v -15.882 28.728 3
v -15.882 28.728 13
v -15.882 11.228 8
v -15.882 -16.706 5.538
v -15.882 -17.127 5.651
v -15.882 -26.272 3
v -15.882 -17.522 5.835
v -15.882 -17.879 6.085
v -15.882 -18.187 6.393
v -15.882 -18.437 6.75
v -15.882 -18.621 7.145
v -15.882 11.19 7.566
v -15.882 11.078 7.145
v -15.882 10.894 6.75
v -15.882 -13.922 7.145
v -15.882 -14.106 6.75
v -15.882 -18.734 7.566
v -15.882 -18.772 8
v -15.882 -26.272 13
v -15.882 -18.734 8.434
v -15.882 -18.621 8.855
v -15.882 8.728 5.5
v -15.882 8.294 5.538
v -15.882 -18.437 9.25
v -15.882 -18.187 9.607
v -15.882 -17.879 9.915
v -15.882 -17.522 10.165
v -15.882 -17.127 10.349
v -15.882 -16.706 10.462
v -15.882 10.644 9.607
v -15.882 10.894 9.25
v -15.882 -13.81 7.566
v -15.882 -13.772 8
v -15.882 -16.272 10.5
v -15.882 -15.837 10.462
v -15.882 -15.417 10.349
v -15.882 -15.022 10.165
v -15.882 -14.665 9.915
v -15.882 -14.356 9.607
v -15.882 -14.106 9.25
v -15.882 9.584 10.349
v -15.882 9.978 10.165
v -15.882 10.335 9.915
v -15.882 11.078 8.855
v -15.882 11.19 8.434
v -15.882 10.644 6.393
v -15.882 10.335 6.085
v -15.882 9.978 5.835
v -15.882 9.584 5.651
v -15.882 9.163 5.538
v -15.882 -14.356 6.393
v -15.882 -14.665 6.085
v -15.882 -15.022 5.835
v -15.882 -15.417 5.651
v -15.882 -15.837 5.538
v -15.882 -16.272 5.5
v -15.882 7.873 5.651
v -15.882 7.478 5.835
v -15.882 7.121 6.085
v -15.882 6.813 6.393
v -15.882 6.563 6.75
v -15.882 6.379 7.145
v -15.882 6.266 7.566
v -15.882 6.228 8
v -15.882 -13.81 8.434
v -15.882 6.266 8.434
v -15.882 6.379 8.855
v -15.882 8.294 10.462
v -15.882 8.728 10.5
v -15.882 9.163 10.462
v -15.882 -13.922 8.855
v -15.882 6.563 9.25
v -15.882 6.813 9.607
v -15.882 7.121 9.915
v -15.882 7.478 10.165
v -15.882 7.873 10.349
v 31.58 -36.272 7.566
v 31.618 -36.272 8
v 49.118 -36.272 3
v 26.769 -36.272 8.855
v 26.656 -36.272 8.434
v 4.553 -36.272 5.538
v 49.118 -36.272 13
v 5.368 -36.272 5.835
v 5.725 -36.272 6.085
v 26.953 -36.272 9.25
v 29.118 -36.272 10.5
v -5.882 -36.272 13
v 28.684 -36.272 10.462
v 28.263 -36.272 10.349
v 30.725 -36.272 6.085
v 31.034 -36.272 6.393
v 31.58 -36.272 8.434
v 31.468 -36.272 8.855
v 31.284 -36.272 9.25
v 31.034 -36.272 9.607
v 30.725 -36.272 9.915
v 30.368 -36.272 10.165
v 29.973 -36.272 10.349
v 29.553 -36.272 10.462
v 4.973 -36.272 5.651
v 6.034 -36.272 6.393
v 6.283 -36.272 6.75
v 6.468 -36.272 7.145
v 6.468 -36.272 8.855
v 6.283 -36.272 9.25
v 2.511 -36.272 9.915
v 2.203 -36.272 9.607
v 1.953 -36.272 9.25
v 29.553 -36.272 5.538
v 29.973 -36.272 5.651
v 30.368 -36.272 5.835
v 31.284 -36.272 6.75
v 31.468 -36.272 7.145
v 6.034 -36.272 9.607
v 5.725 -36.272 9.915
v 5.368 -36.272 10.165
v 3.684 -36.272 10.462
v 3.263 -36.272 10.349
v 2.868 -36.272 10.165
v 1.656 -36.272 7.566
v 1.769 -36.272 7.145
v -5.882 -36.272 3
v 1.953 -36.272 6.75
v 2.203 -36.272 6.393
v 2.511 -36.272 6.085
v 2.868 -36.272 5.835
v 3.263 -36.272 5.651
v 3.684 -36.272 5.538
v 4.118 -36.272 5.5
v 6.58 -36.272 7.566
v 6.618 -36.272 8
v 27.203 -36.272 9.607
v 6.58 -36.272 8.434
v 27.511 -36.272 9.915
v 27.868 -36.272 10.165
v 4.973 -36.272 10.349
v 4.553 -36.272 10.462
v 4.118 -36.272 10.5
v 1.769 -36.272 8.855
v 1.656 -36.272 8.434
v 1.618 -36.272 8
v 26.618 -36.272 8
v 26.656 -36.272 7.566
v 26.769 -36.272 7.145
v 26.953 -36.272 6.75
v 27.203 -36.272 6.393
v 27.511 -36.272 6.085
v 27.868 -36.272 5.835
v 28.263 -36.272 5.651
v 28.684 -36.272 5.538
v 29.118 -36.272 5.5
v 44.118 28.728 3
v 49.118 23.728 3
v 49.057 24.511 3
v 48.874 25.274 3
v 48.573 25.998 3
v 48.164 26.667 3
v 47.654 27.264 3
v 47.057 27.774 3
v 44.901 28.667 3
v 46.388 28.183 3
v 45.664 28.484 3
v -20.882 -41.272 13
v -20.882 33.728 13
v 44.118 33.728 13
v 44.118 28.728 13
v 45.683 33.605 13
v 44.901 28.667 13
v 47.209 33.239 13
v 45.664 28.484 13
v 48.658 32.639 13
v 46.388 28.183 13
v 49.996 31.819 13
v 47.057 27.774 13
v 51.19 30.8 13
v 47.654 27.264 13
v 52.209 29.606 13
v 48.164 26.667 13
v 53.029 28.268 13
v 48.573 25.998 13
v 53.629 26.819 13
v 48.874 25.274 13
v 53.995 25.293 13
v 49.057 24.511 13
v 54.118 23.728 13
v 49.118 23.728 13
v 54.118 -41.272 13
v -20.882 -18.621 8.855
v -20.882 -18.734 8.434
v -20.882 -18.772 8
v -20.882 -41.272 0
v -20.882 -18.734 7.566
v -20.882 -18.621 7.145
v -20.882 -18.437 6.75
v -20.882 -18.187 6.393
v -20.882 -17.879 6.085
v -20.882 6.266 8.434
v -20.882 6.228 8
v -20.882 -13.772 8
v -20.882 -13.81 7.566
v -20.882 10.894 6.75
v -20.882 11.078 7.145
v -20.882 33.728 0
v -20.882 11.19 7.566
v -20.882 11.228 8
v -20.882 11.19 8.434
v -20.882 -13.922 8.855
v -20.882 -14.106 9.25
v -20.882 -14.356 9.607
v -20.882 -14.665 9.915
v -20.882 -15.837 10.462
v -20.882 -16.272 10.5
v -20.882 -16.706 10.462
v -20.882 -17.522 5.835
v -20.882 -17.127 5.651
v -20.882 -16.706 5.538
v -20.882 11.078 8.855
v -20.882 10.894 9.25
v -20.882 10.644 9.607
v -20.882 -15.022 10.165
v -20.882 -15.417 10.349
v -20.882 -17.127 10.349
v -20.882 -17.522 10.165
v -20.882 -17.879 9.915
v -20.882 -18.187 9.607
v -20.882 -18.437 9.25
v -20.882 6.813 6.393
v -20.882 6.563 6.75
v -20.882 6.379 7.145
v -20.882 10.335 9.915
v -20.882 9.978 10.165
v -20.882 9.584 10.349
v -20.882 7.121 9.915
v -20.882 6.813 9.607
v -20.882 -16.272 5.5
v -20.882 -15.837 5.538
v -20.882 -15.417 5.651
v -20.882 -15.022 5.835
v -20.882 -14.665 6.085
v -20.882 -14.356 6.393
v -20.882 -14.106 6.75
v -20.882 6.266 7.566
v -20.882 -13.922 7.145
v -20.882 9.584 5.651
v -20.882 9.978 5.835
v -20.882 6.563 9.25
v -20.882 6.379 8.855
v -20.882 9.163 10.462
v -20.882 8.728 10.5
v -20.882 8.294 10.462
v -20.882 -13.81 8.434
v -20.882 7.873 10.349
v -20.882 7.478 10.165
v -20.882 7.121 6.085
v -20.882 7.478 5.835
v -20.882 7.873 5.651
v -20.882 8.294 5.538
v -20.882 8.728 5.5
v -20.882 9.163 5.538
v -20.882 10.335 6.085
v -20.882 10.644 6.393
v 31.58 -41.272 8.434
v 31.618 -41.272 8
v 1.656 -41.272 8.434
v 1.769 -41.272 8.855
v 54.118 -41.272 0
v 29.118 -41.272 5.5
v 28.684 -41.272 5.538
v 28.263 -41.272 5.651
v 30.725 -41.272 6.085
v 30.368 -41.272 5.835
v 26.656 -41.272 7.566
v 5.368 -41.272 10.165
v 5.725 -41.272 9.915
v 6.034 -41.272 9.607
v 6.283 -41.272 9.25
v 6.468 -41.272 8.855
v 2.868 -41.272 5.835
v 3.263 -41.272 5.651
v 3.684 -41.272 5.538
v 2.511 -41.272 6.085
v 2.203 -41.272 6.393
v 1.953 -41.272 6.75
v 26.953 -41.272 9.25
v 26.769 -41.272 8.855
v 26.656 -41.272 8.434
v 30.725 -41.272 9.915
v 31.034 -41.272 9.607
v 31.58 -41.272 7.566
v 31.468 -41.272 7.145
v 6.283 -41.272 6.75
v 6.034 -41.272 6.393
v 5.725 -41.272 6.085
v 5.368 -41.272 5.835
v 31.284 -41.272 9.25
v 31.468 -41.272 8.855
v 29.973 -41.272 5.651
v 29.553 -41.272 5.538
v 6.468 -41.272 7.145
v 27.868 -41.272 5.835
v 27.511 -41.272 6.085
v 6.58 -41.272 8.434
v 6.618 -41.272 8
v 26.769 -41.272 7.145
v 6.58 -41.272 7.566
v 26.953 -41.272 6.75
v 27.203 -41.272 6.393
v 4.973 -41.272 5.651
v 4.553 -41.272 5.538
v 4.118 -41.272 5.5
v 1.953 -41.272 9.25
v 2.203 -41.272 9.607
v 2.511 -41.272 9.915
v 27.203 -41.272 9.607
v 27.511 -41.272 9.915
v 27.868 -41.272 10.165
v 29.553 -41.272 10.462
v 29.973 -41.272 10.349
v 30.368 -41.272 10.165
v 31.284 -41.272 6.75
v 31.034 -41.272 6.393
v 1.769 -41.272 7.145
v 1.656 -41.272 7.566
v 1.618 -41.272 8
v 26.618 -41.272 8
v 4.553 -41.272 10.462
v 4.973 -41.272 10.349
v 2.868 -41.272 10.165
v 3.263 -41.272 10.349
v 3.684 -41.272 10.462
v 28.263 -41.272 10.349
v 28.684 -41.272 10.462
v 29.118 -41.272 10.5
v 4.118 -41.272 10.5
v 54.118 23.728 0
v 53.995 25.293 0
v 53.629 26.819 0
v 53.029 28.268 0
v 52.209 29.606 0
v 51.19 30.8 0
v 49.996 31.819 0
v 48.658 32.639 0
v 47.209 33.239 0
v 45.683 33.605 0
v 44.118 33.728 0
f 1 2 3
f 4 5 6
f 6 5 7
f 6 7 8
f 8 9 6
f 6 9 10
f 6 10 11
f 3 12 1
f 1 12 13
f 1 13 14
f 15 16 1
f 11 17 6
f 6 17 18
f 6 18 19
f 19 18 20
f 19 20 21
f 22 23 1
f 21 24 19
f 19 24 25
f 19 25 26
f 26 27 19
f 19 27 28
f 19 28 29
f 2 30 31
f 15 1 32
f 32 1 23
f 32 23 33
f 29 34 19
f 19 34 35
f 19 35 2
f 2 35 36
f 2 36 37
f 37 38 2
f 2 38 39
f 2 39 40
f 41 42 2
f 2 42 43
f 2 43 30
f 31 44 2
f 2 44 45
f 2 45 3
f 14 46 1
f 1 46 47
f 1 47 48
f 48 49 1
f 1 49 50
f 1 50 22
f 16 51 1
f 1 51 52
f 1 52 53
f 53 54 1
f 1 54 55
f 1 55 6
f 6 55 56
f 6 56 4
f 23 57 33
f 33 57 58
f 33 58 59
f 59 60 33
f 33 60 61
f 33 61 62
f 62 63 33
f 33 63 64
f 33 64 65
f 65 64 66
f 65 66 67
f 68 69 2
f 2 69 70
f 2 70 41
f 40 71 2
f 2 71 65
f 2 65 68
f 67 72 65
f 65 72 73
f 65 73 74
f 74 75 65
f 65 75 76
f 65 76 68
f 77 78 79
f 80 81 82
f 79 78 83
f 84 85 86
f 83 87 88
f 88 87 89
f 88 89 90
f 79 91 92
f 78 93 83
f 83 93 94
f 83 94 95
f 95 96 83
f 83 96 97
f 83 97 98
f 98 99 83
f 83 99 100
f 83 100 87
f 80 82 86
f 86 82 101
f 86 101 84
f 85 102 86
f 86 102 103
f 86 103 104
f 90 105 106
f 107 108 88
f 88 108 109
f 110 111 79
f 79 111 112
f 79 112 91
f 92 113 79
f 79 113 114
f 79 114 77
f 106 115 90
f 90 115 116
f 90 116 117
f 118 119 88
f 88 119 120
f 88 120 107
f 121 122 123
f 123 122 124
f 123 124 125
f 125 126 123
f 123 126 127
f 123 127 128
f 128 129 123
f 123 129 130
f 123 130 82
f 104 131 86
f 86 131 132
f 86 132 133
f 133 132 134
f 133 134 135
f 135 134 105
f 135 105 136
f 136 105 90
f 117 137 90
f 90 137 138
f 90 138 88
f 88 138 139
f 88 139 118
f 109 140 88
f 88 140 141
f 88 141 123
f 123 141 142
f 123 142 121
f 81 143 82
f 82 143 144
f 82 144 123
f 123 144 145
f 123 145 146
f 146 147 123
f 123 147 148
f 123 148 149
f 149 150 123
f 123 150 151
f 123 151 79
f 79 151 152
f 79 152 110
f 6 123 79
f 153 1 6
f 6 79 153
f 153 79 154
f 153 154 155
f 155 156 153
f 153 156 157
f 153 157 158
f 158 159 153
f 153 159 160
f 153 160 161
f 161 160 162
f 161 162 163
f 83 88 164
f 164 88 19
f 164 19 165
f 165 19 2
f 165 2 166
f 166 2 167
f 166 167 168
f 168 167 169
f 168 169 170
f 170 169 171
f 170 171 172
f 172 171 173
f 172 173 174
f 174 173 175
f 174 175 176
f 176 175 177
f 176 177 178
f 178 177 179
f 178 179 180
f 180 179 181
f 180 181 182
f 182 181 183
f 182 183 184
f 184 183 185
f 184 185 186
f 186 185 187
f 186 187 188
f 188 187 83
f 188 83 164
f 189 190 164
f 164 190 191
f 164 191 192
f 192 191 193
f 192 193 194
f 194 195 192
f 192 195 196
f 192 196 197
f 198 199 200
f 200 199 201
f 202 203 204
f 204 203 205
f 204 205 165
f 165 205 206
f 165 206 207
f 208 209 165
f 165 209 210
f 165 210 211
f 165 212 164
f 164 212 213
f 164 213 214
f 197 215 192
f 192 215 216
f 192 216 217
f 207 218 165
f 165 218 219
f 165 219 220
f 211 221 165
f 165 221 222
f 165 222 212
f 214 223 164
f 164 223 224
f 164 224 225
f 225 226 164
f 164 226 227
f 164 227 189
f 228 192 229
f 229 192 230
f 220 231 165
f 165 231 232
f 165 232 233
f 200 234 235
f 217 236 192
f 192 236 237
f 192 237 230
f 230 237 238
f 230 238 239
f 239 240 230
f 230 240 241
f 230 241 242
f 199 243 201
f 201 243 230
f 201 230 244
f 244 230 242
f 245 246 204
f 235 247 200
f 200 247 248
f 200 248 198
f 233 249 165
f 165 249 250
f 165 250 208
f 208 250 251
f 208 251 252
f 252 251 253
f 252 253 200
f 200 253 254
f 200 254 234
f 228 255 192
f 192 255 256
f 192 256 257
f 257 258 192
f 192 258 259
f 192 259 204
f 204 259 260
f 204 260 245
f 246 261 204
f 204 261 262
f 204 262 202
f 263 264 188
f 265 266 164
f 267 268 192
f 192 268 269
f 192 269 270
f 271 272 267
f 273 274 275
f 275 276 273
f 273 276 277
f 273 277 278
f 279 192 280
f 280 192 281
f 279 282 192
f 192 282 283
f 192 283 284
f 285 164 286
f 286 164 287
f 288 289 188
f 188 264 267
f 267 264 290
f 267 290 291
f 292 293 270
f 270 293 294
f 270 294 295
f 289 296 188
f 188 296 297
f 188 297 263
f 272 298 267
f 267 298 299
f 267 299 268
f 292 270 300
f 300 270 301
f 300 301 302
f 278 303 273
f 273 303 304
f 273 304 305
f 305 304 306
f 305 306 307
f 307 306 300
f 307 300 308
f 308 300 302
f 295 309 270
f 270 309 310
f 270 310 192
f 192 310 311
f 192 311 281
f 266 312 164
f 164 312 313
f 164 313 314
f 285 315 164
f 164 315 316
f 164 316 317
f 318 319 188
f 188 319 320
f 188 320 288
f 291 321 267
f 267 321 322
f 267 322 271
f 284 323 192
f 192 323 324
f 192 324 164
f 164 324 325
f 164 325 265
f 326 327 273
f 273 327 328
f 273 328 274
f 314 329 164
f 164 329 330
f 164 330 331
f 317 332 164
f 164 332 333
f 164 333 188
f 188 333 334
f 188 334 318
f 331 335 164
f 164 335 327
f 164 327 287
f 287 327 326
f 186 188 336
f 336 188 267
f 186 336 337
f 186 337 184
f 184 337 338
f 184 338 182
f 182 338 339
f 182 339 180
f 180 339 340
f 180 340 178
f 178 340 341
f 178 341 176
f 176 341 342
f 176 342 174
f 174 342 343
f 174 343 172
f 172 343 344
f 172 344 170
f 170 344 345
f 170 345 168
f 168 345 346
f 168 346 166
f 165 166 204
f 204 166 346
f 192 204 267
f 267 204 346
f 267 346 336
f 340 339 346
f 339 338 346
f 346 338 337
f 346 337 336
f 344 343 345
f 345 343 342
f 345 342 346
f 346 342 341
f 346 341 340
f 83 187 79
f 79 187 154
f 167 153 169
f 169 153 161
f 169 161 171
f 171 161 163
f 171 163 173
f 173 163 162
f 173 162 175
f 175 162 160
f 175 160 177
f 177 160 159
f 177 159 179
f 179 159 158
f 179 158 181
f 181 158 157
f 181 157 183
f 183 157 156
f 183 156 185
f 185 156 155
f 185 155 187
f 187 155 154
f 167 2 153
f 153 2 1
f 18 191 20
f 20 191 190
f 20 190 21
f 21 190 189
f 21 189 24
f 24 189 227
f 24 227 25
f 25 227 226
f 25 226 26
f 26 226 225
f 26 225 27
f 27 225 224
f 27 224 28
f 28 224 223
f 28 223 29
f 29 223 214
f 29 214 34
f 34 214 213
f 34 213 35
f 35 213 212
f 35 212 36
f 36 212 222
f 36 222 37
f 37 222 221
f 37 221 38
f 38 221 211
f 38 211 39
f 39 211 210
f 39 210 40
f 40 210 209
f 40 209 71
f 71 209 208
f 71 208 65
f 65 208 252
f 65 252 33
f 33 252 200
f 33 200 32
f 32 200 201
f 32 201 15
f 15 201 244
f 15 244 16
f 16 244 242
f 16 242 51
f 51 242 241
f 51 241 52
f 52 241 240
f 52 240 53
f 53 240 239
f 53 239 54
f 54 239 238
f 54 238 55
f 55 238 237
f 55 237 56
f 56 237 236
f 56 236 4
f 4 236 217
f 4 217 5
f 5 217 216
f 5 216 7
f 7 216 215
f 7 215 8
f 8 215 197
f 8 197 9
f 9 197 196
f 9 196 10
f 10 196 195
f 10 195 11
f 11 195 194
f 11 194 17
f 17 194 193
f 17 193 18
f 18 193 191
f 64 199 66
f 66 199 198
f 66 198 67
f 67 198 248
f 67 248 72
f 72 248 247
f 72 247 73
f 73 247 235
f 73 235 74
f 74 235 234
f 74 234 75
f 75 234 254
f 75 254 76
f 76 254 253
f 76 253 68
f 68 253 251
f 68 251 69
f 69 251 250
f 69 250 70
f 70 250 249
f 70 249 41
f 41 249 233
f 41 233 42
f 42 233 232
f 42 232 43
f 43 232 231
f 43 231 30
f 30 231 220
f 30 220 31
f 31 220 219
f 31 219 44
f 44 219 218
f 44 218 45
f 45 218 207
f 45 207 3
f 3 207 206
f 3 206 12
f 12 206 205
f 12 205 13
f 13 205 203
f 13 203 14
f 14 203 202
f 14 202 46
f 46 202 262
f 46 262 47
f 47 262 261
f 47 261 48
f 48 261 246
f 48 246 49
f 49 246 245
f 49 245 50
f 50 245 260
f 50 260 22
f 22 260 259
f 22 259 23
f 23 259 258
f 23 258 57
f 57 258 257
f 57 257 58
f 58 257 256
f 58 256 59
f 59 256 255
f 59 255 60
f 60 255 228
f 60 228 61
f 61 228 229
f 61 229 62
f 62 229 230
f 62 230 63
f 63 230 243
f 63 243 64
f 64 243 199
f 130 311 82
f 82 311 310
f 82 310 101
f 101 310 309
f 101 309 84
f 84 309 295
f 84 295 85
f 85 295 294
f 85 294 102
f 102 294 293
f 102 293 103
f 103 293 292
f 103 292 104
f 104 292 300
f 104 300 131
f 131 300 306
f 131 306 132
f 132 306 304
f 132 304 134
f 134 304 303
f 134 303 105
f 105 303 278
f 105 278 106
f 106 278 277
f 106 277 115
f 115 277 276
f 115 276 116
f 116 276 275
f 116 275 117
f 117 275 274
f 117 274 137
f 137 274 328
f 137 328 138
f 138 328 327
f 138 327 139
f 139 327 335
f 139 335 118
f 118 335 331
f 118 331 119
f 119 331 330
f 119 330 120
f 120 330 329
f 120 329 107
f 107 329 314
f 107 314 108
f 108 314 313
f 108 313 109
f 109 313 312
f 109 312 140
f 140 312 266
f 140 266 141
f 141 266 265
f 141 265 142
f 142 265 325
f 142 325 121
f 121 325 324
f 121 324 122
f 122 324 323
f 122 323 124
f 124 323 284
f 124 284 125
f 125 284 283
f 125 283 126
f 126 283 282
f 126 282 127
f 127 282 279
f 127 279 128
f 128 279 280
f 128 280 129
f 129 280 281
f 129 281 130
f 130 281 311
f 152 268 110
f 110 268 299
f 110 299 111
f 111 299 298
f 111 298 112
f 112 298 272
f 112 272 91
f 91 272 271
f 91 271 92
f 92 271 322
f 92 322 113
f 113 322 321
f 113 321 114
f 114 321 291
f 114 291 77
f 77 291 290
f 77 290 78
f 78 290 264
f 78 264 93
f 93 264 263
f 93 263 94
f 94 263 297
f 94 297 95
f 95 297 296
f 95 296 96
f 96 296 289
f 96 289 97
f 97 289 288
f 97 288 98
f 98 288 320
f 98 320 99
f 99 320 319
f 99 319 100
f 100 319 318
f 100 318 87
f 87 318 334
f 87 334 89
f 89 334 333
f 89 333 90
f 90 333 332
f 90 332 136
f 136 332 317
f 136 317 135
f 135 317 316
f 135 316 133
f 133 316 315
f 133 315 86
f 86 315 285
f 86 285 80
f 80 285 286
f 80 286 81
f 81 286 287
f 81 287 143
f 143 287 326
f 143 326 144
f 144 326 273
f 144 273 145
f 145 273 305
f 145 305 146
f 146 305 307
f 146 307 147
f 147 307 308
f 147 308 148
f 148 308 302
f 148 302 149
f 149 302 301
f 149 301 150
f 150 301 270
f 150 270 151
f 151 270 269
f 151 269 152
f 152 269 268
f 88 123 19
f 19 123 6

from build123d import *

# Parameters (mm, degrees)
BOSS_EXTRU_1_DEPTH       = 13
COQUE1_T                 = -5
COQUE1_THICKNESS_2_DEPTH = 2
ESQUISSE2_R              = 2.5
ENL_V_MAT_EXTRU_1_DEPTH  = 5
ESQUISSE3_R              = 2.5
ENL_V_MAT_EXTRU_2_DEPTH  = 5
BOSS_EXTRU_2_DEPTH       = 10


with BuildPart() as part:
    # Esquisse1 → Boss.-Extru.1 (new body)
    with BuildSketch(Plane.XY):
        with BuildLine():
            Line((-20.881563692, 33.728448276), (44.118436308, 33.728448276))
            ThreePointArc((44.118436308, 33.728448276), (51.18950412, 30.799516088), (54.118436308, 23.728448276))
            Line((54.118436308, 23.728448276), (54.118436308, -41.271551724))
            Line((54.118436308, -41.271551724), (-20.881563692, -41.271551724))
            Line((-20.881563692, -41.271551724), (-20.881563692, 33.728448276))
        make_face()
    extrude(amount=BOSS_EXTRU_1_DEPTH)

    # Coque1
    coque1_openings = [part.faces().sort_by_distance(p)[0] for p in [
        (16.483374946, -3.906613086, 13),
    ]]
    offset(amount=COQUE1_T, openings=coque1_openings, kind=Kind.INTERSECTION)

    # Coque1 thickness 2 face (on inner face of the shell) → Coque1 thickness 2 (cut)
    with BuildSketch(Plane(origin=(16.578534255, -3.811453777, 5), x_dir=(-1, 0, 0), z_dir=(0, 0, -1))):
        with BuildLine():
            Line((-27.539902053, 32.539902053), (32.460097947, 32.539902053))
            Line((32.460097947, 32.539902053), (32.460097947, -32.460097947))
            Line((32.460097947, -32.460097947), (-32.539902053, -32.460097947))
            Line((-32.539902053, -32.460097947), (-32.539902053, 27.539902053))
            ThreePointArc((-32.539902053, 27.539902053), (-31.075435959, 31.075435959), (-27.539902053, 32.539902053))
        make_face()
    extrude(amount=COQUE1_THICKNESS_2_DEPTH, mode=Mode.SUBTRACT)

    # Esquisse2 → Enlèv. mat.-Extru.1 (cut)
    with BuildSketch(Plane.ZY.offset(20.881563692)):
        with Locations(Location((8, -16.271551724, 0), (0, 0, 270))):
            Circle(ESQUISSE2_R)
        with Locations(Location((8, 8.728448276, 0), (0, 0, 270))):
            Circle(ESQUISSE2_R)
    extrude(amount=-ENL_V_MAT_EXTRU_1_DEPTH, mode=Mode.SUBTRACT)

    # Esquisse3 → Enlèv. mat.-Extru.2 (cut)
    with BuildSketch(Plane.XZ.offset(41.271551724)):
        with Locations(Location((4.118436308, 8, 0), (0, 0, 270))):
            Circle(ESQUISSE3_R)
        with Locations(Location((29.118436308, 8, 0), (0, 0, 270))):
            Circle(ESQUISSE3_R)
    extrude(amount=-ENL_V_MAT_EXTRU_2_DEPTH, mode=Mode.SUBTRACT)

    # Esquisse4 → Boss.-Extru.2 (add)
    with BuildSketch(Plane.XY.offset(3)):
        Polygon((-15.881563692, -26.271551724), (-5.881563692, -36.271551724), (-15.881563692, -36.271551724), align=None)
    extrude(amount=BOSS_EXTRU_2_DEPTH)


solid = part.part
